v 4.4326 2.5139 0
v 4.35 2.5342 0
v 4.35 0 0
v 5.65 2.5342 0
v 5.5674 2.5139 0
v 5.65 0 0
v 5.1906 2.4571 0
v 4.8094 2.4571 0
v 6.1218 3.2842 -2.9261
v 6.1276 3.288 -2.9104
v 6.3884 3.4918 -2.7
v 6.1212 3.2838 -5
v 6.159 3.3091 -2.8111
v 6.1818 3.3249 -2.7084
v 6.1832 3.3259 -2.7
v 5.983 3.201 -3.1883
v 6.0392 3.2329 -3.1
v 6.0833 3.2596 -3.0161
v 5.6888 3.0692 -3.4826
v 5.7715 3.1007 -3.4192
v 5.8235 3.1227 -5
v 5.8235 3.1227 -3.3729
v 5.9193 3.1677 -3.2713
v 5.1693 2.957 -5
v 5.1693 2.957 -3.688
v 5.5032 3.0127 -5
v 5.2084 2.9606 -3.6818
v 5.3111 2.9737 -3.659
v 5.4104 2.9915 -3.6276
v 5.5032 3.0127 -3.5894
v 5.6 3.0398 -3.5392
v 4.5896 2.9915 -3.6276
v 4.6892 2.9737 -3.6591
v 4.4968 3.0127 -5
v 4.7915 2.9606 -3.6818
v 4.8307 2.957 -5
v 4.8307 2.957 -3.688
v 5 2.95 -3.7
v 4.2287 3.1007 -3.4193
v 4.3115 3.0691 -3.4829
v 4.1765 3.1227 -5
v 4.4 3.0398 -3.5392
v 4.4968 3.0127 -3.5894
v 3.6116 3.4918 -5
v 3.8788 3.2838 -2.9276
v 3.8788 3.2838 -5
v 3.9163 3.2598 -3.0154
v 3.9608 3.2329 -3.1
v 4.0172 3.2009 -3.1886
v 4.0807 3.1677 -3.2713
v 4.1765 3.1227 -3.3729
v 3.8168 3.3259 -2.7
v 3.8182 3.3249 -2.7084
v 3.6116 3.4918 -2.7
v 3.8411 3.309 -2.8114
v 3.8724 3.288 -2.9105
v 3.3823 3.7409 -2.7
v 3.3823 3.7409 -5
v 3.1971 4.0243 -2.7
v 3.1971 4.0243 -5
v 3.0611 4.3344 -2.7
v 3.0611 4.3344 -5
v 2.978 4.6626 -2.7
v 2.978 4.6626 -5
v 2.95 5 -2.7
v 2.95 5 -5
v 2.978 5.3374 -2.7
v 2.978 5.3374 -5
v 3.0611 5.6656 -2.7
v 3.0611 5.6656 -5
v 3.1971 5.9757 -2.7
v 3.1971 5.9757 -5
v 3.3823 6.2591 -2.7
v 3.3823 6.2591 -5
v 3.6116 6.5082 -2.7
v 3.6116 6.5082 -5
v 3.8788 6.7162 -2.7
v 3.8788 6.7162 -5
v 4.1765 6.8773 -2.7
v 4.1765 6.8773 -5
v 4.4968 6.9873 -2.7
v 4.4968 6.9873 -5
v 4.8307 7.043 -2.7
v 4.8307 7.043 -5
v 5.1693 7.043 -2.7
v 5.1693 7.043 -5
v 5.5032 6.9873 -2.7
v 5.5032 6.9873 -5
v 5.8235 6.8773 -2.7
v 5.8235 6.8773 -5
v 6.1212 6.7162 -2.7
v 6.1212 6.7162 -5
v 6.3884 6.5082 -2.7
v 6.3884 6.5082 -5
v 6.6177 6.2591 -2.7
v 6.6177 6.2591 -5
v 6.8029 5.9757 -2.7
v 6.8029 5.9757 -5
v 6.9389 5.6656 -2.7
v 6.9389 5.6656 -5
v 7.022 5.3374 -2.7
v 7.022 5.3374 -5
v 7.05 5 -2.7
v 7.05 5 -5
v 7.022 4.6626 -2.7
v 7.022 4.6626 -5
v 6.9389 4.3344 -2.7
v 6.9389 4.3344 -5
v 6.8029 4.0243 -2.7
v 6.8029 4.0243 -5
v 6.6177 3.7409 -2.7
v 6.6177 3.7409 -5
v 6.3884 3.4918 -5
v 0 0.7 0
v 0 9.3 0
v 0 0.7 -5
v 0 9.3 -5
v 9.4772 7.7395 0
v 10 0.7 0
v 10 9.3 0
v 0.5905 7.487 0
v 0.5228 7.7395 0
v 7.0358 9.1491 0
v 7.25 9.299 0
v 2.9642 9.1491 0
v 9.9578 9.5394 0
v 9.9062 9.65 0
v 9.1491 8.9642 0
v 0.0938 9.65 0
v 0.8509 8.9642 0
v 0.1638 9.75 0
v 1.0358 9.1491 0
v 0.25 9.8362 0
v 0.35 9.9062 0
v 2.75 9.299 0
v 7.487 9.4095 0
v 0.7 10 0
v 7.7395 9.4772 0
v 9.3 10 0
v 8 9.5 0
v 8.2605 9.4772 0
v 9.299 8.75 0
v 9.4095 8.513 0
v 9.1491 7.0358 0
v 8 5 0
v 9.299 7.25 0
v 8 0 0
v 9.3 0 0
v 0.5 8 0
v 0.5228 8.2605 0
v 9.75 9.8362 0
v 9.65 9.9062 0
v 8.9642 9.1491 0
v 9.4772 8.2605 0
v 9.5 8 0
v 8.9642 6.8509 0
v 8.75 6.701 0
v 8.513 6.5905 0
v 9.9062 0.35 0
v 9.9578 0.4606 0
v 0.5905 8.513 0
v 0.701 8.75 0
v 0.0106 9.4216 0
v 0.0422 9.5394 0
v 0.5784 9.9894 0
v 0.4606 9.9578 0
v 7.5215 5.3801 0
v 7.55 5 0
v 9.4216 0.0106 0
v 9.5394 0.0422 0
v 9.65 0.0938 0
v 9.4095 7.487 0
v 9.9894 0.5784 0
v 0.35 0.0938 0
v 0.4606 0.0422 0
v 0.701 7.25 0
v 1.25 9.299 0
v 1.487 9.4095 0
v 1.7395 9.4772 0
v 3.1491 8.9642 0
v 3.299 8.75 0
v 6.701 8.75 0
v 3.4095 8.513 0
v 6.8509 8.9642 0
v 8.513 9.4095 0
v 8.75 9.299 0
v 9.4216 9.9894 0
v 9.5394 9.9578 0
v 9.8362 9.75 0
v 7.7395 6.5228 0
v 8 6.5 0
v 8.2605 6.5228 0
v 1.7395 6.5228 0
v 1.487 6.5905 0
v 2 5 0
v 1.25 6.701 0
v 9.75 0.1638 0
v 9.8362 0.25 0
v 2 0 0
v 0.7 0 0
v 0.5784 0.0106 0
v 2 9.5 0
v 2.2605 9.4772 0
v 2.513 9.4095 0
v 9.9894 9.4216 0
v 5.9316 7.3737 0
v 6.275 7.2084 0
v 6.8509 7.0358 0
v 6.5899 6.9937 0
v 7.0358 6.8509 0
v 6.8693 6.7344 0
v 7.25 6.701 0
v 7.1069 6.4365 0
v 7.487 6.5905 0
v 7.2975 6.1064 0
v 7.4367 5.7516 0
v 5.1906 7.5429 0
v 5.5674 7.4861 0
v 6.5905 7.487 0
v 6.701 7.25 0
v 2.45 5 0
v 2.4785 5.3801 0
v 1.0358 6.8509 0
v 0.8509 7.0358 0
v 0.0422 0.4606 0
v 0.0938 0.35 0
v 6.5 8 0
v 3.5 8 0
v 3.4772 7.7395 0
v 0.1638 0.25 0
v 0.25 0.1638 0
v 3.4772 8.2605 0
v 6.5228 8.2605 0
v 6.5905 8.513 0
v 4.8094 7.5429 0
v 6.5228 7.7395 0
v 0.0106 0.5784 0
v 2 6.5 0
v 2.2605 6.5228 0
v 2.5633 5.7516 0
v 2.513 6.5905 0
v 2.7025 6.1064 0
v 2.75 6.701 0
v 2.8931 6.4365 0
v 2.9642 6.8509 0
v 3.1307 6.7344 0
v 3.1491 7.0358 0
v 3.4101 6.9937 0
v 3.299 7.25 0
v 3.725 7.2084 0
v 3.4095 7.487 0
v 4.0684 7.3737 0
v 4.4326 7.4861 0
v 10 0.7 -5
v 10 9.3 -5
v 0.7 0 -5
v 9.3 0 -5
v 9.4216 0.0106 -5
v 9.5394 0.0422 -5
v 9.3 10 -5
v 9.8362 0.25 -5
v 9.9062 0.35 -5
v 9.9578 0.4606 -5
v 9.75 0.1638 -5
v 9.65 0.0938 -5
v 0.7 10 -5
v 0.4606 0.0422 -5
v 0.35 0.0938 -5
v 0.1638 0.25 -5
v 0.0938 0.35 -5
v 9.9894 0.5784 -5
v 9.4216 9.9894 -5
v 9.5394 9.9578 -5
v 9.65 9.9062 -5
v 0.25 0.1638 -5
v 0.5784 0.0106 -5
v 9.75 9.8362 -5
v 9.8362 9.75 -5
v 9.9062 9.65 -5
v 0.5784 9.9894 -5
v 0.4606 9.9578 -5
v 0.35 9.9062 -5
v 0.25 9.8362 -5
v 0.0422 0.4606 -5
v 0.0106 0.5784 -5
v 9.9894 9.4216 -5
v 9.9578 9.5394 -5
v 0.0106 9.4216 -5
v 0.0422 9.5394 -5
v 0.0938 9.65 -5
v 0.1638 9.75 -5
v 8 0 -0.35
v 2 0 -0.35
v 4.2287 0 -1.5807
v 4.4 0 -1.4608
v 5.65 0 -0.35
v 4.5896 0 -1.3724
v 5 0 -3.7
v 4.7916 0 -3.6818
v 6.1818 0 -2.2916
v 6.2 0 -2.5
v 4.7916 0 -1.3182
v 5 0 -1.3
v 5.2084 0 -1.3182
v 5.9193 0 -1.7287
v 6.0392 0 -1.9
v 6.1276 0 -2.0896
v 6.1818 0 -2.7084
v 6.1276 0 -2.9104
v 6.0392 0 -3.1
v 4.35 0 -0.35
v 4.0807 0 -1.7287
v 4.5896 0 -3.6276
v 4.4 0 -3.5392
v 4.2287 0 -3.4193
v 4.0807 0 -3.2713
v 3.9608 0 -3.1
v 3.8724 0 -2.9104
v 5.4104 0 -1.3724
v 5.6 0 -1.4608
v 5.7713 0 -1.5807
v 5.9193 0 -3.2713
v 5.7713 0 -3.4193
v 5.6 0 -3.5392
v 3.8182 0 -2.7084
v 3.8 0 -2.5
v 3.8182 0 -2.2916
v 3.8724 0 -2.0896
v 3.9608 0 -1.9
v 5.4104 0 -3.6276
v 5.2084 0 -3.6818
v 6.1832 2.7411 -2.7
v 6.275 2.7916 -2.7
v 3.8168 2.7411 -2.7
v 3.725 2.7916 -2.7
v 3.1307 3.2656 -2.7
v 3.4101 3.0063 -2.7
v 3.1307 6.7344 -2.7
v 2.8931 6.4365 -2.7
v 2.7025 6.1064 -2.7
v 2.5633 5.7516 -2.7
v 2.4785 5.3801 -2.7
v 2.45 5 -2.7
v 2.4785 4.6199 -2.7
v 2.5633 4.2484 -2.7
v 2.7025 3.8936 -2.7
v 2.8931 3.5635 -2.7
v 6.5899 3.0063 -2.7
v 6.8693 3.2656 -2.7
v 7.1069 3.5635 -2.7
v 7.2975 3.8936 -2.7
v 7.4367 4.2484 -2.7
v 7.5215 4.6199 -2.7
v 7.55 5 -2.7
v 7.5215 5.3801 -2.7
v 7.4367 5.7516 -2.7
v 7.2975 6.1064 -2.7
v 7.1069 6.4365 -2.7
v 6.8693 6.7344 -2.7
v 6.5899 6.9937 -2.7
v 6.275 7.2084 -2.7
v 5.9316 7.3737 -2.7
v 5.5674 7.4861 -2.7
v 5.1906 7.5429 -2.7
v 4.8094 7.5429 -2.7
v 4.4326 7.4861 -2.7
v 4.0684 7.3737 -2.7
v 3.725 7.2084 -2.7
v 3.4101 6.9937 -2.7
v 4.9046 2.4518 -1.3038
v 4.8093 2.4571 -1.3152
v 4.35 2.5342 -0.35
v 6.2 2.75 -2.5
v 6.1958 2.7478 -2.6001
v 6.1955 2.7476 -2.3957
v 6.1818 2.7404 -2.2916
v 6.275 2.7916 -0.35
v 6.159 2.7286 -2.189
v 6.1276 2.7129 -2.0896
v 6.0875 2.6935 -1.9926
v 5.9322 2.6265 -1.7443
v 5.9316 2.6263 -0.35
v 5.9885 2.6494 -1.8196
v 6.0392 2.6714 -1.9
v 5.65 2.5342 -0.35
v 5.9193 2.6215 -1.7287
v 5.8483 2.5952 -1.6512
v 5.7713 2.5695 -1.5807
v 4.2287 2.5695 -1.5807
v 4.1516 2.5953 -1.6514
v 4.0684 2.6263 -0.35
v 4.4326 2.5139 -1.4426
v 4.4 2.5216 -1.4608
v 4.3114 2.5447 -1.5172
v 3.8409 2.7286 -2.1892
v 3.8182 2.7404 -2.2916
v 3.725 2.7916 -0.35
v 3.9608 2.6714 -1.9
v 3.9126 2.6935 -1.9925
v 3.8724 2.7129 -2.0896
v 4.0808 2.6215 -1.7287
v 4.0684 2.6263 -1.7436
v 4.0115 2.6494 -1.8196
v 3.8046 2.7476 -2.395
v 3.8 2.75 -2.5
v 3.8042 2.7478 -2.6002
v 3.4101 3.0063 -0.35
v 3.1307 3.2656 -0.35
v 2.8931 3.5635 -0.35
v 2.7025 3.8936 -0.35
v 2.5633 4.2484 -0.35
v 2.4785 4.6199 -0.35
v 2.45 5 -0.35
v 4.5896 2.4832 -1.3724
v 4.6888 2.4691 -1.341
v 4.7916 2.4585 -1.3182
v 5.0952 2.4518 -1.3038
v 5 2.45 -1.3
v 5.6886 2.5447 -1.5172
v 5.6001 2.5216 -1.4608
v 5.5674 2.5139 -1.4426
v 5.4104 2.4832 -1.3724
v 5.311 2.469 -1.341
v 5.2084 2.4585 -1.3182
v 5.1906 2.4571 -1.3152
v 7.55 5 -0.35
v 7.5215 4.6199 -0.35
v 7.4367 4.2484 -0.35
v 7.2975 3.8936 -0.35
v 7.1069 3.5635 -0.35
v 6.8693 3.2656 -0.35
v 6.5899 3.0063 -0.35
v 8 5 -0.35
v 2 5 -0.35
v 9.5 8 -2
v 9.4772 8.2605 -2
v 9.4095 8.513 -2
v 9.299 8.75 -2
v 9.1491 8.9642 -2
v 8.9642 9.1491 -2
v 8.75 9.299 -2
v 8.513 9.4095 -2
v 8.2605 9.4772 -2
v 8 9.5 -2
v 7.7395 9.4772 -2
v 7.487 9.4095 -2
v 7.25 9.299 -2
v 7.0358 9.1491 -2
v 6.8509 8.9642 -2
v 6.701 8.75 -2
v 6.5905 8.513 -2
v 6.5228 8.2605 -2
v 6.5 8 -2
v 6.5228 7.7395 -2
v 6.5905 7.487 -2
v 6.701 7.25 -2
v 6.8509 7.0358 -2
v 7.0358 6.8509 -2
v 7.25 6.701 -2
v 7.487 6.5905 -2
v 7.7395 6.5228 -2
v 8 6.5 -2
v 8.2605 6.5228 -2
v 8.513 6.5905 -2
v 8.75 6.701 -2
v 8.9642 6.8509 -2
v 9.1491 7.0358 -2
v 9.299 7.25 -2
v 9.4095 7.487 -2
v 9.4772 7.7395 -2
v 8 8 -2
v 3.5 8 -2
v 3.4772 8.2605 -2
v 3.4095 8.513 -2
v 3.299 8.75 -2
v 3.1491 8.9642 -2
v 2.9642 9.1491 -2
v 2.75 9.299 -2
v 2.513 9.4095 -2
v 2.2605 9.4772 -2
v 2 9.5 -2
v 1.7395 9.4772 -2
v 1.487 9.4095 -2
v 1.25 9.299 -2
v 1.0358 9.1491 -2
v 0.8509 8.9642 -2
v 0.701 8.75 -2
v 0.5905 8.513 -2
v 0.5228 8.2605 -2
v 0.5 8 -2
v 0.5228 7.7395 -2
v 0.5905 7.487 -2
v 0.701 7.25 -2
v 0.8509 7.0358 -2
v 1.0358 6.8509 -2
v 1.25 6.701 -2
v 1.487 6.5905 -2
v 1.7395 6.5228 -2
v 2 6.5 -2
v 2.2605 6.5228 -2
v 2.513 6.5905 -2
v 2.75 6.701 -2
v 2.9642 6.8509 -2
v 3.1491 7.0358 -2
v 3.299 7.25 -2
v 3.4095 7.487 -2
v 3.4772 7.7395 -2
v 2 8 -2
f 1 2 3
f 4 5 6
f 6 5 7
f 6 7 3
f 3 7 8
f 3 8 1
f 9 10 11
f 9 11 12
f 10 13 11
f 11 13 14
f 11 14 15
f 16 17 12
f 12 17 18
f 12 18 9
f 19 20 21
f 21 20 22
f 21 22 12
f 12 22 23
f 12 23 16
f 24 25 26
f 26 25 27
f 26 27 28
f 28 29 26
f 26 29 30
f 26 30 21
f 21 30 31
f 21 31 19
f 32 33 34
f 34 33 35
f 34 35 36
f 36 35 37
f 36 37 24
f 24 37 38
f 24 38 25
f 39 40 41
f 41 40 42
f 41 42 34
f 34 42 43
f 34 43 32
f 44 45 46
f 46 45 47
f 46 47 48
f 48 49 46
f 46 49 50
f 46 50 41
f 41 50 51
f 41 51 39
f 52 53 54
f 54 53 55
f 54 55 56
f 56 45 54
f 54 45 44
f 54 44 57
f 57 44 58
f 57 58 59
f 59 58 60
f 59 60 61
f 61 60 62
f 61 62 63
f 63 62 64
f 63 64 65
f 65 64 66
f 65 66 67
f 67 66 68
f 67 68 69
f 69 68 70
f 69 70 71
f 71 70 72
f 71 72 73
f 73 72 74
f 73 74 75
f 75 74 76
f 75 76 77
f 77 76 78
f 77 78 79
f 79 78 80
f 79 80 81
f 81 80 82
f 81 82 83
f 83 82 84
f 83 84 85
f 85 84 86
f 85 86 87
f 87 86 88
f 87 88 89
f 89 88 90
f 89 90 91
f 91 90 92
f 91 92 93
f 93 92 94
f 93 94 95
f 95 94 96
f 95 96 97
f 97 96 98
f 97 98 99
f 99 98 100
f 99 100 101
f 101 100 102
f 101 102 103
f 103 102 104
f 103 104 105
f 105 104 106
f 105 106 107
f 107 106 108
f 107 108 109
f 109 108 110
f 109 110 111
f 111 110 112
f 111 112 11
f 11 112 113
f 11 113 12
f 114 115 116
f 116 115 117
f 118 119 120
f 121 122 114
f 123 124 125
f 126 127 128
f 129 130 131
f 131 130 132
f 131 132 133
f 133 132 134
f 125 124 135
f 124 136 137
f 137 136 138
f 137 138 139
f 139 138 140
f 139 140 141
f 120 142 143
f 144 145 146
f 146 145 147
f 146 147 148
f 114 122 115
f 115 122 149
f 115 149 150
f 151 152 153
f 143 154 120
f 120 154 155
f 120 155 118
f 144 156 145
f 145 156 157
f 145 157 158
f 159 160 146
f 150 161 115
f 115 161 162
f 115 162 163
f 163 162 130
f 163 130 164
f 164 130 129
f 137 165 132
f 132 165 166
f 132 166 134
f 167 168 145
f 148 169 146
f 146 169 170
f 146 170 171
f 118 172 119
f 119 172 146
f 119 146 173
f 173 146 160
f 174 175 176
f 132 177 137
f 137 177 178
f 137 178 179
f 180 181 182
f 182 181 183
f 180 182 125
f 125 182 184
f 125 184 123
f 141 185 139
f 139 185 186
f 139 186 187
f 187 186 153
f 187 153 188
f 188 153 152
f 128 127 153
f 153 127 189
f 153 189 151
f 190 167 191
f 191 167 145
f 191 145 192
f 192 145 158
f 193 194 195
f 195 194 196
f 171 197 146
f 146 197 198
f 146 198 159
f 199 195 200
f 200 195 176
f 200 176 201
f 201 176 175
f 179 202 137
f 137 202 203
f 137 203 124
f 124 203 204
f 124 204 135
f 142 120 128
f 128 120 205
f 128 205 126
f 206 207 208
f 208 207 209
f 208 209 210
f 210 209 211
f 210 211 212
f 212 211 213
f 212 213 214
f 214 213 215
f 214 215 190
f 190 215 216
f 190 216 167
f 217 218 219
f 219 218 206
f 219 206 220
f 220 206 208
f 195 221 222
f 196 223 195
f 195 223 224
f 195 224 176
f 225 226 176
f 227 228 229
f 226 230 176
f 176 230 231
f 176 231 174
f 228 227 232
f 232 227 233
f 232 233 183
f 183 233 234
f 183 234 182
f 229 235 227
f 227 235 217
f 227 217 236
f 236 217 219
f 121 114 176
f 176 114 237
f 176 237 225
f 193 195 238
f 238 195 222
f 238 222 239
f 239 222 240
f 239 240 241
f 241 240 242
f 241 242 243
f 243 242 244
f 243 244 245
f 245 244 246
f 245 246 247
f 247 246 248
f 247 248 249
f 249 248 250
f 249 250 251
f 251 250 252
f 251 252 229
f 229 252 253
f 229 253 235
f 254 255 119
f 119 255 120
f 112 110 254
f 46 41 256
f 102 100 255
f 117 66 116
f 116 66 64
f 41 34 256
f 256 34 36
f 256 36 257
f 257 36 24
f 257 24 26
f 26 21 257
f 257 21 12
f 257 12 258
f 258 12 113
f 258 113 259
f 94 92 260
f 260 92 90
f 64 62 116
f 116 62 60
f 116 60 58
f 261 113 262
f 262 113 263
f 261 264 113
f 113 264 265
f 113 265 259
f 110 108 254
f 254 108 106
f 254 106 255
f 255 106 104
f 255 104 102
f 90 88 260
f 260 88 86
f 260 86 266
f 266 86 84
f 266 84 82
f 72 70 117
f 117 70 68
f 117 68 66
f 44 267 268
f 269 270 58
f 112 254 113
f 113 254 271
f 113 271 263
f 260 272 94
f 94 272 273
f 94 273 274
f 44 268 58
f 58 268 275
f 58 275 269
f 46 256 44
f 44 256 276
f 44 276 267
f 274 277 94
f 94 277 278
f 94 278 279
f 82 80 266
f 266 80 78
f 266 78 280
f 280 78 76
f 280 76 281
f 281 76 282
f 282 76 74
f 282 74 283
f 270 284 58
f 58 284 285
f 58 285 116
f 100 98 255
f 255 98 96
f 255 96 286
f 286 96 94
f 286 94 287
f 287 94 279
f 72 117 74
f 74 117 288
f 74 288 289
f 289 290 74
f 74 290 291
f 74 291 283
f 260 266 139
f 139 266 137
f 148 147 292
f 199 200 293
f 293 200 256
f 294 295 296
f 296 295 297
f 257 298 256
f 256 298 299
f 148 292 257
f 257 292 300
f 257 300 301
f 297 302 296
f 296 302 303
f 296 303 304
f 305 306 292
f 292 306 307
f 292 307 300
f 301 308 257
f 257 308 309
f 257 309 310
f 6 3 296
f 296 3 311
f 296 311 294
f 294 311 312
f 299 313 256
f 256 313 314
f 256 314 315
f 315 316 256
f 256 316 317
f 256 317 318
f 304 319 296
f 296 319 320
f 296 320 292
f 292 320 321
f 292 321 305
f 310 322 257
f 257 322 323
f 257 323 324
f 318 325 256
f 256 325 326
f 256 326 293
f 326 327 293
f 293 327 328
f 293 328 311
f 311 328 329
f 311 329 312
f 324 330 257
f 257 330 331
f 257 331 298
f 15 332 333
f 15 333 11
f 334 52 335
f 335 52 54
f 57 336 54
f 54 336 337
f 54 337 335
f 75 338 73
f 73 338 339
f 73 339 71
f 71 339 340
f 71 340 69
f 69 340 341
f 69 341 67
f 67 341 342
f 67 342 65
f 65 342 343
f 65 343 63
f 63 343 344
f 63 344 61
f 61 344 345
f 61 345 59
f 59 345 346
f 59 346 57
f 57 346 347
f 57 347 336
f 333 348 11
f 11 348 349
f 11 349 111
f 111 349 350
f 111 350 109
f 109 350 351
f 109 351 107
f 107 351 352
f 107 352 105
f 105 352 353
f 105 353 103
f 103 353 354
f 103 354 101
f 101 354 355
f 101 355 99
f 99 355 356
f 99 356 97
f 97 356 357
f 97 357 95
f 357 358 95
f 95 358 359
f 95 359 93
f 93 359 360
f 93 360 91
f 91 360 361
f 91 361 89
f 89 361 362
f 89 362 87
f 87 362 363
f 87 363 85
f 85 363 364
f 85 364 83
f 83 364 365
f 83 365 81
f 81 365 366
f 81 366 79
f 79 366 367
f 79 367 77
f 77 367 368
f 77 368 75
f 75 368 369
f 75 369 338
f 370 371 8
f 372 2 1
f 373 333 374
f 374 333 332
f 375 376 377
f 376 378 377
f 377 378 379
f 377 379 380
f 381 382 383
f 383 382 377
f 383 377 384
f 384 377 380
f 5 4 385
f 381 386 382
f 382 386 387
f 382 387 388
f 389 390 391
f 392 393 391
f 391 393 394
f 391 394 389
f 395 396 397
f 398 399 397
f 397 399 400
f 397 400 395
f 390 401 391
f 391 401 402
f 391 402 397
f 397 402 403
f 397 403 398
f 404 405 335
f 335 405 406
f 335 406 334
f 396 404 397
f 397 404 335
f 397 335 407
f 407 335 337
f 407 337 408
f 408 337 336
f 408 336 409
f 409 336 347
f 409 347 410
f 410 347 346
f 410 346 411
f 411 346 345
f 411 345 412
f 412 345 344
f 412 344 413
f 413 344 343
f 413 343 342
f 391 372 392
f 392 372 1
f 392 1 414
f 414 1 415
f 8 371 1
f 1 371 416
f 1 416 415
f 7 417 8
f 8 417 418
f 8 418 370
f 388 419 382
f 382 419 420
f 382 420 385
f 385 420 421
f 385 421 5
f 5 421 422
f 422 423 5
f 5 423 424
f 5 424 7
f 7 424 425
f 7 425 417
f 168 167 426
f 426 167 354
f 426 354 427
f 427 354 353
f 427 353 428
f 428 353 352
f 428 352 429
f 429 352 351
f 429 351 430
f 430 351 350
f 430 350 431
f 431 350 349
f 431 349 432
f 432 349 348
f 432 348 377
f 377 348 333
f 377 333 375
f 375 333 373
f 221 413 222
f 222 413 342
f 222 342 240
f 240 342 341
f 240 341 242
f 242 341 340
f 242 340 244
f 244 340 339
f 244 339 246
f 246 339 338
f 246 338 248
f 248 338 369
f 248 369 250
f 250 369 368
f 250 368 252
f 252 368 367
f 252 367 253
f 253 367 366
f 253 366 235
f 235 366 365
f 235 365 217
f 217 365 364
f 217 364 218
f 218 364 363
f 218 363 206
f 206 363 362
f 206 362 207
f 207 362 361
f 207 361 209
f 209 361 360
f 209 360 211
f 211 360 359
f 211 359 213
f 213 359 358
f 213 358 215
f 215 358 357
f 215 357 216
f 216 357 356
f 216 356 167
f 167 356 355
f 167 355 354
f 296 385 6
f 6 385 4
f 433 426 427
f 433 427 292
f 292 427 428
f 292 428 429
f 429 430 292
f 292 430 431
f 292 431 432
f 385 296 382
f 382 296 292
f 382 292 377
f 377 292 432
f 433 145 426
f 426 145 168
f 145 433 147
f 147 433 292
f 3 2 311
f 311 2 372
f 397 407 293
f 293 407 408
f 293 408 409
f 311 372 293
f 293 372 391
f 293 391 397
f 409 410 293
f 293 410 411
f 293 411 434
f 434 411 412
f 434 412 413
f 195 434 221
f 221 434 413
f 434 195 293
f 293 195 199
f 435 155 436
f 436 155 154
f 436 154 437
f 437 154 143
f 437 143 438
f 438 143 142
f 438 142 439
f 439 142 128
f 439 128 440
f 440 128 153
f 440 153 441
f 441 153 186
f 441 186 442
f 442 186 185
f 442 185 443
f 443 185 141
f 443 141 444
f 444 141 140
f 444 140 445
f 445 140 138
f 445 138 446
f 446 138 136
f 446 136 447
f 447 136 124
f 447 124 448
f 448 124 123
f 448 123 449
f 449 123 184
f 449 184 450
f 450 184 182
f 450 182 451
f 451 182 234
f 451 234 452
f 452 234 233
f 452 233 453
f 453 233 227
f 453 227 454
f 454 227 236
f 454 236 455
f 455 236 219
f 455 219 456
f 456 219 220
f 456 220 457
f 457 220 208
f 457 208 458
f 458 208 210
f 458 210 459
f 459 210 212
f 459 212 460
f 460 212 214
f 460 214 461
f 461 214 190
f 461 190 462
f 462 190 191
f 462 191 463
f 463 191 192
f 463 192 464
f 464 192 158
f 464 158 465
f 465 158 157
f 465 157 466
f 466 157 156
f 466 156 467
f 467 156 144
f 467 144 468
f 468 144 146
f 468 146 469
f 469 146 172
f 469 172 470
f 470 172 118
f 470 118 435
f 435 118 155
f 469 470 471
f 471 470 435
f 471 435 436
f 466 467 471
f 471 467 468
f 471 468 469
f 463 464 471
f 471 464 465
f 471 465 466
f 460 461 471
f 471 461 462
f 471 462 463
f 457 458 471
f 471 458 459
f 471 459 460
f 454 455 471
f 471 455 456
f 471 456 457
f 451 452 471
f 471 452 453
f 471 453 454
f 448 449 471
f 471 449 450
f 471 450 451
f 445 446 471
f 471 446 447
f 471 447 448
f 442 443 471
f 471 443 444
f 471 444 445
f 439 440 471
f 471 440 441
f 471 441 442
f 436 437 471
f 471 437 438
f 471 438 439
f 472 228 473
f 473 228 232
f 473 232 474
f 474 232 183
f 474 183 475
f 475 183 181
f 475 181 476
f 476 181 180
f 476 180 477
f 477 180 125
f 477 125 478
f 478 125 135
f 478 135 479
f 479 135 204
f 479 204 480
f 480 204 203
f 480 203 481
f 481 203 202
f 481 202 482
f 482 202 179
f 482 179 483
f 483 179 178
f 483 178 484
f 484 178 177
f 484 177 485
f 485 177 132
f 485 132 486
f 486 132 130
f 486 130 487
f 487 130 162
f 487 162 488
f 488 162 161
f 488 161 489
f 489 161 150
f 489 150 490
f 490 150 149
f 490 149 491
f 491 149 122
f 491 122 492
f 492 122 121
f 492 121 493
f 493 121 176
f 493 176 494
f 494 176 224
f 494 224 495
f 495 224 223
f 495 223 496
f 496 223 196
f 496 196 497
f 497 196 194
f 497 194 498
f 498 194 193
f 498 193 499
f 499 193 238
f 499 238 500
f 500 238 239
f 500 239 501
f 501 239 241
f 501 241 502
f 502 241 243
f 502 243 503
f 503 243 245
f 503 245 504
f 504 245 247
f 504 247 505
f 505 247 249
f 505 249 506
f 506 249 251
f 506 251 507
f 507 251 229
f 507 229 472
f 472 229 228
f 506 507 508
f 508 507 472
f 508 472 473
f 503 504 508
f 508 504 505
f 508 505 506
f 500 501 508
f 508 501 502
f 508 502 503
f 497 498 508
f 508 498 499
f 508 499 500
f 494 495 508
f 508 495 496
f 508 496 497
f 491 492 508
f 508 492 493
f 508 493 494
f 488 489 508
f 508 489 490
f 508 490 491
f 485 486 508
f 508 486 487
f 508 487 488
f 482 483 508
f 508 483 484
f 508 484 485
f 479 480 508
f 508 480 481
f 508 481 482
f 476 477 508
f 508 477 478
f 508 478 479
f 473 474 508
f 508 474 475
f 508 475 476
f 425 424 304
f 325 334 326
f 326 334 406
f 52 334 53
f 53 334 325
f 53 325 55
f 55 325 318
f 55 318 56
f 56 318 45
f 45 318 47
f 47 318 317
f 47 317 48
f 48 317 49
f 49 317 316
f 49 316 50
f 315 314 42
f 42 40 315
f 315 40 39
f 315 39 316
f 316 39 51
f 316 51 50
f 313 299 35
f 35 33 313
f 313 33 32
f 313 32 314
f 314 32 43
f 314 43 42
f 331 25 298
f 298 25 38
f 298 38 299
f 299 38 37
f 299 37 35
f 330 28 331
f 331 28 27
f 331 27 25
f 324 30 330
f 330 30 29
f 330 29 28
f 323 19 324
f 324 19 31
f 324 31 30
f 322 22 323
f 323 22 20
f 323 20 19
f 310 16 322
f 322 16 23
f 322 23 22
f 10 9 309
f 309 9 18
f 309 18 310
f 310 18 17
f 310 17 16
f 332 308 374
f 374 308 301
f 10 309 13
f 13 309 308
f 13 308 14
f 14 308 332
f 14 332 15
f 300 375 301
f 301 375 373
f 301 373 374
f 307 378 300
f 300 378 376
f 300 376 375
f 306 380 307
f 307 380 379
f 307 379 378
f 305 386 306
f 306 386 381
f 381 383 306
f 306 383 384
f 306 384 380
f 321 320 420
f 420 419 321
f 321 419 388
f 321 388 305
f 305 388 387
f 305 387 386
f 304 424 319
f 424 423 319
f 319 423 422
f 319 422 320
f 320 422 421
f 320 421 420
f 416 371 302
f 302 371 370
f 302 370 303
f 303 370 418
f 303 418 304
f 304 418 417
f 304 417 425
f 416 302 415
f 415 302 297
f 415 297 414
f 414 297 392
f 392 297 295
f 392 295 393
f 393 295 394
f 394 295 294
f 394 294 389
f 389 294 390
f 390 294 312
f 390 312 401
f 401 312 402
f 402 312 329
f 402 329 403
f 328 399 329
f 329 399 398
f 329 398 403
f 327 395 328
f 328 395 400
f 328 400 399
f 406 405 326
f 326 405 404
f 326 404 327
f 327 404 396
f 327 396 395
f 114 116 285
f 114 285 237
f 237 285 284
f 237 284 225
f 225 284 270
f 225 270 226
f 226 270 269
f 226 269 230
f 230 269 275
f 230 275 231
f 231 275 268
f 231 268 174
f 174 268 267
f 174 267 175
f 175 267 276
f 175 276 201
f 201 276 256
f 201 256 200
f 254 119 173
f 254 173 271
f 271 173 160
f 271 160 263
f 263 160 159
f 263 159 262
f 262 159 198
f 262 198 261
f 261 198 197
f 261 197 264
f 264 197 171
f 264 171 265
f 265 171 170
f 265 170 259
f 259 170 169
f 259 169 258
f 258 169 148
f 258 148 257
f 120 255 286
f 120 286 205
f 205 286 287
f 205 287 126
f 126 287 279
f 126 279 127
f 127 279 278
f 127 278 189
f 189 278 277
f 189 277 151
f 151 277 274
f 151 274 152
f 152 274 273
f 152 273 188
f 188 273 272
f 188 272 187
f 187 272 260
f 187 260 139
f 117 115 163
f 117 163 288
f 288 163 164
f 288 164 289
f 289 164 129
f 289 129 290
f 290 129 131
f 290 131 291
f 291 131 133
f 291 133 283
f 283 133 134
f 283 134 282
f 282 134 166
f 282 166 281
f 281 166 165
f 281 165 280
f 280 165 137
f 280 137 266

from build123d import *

# Parameters (mm, degrees)
SKETCH1_W           = 10
SKETCH1_H           = 5
BOSS_EXTRUDE1_DEPTH = 10
SKETCH2_R           = 2.05
CUT_EXTRUDE1_DEPTH  = 16
SKETCH3_R           = 2.55
CUT_EXTRUDE2_DEPTH  = 2.7
SKETCH5_W           = 2.35
SKETCH5_H           = 0.35
CUT_EXTRUDE3_DEPTH  = 5
SKETCH6_R           = 1.5
CUT_EXTRUDE4_DEPTH  = 2
SKETCH8_R           = 1.2
CUT_EXTRUDE5_DEPTH  = 3.5
FILLET1_R           = 0.7


with BuildPart() as part:
    # Sketch1 → Boss-Extrude1 (new body)
    with BuildSketch(Plane(origin=(0, 0, 0), x_dir=(1, 0, 0), z_dir=(0, 1, 0))):
        with Locations((5, 2.5)):
            Rectangle(SKETCH1_W, SKETCH1_H)
    extrude(amount=BOSS_EXTRUDE1_DEPTH)

    # Sketch2 → Cut-Extrude1 (cut, through all)
    with BuildSketch(Plane.XY):
        with Locations((5, 5)):
            Circle(SKETCH2_R)
    extrude(amount=-CUT_EXTRUDE1_DEPTH, mode=Mode.SUBTRACT)

    # Sketch3 → Cut-Extrude2 (cut)
    with BuildSketch(Plane.XY):
        with Locations((5, 5)):
            Circle(SKETCH3_R)
    extrude(amount=-CUT_EXTRUDE2_DEPTH, mode=Mode.SUBTRACT)

    # Sketch5 → Cut-Extrude3 (cut)
    with BuildSketch(Plane.XZ):
        with Locations((3.175, -0.175)):
            Rectangle(SKETCH5_W, SKETCH5_H)
        with Locations((6.825, -0.175)):
            Rectangle(SKETCH5_W, SKETCH5_H)
    extrude(amount=-CUT_EXTRUDE3_DEPTH, mode=Mode.SUBTRACT)

    # Sketch6 → Cut-Extrude4 (cut)
    with BuildSketch(Plane.XY):
        with Locations((2, 8)):
            Circle(SKETCH6_R)
        with Locations((8, 8)):
            Circle(SKETCH6_R)
    extrude(amount=-CUT_EXTRUDE4_DEPTH, mode=Mode.SUBTRACT)

    # Sketch8 → Cut-Extrude5 (cut)
    with BuildSketch(Plane.XZ):
        with Locations(Location((5, -2.5, 0), (0, 0, 270))):
            Circle(SKETCH8_R)
    extrude(amount=-CUT_EXTRUDE5_DEPTH, mode=Mode.SUBTRACT)

    # Fillet1
    fillet1_edges = [part.edges().sort_by_distance(p)[0] for p in [
        (10, 10, -2.5),
        (0, 10, -2.5),
        (10, 0, -2.5),
        (0, 0, -2.5),
    ]]
    fillet(fillet1_edges, radius=FILLET1_R)


solid = part.part
